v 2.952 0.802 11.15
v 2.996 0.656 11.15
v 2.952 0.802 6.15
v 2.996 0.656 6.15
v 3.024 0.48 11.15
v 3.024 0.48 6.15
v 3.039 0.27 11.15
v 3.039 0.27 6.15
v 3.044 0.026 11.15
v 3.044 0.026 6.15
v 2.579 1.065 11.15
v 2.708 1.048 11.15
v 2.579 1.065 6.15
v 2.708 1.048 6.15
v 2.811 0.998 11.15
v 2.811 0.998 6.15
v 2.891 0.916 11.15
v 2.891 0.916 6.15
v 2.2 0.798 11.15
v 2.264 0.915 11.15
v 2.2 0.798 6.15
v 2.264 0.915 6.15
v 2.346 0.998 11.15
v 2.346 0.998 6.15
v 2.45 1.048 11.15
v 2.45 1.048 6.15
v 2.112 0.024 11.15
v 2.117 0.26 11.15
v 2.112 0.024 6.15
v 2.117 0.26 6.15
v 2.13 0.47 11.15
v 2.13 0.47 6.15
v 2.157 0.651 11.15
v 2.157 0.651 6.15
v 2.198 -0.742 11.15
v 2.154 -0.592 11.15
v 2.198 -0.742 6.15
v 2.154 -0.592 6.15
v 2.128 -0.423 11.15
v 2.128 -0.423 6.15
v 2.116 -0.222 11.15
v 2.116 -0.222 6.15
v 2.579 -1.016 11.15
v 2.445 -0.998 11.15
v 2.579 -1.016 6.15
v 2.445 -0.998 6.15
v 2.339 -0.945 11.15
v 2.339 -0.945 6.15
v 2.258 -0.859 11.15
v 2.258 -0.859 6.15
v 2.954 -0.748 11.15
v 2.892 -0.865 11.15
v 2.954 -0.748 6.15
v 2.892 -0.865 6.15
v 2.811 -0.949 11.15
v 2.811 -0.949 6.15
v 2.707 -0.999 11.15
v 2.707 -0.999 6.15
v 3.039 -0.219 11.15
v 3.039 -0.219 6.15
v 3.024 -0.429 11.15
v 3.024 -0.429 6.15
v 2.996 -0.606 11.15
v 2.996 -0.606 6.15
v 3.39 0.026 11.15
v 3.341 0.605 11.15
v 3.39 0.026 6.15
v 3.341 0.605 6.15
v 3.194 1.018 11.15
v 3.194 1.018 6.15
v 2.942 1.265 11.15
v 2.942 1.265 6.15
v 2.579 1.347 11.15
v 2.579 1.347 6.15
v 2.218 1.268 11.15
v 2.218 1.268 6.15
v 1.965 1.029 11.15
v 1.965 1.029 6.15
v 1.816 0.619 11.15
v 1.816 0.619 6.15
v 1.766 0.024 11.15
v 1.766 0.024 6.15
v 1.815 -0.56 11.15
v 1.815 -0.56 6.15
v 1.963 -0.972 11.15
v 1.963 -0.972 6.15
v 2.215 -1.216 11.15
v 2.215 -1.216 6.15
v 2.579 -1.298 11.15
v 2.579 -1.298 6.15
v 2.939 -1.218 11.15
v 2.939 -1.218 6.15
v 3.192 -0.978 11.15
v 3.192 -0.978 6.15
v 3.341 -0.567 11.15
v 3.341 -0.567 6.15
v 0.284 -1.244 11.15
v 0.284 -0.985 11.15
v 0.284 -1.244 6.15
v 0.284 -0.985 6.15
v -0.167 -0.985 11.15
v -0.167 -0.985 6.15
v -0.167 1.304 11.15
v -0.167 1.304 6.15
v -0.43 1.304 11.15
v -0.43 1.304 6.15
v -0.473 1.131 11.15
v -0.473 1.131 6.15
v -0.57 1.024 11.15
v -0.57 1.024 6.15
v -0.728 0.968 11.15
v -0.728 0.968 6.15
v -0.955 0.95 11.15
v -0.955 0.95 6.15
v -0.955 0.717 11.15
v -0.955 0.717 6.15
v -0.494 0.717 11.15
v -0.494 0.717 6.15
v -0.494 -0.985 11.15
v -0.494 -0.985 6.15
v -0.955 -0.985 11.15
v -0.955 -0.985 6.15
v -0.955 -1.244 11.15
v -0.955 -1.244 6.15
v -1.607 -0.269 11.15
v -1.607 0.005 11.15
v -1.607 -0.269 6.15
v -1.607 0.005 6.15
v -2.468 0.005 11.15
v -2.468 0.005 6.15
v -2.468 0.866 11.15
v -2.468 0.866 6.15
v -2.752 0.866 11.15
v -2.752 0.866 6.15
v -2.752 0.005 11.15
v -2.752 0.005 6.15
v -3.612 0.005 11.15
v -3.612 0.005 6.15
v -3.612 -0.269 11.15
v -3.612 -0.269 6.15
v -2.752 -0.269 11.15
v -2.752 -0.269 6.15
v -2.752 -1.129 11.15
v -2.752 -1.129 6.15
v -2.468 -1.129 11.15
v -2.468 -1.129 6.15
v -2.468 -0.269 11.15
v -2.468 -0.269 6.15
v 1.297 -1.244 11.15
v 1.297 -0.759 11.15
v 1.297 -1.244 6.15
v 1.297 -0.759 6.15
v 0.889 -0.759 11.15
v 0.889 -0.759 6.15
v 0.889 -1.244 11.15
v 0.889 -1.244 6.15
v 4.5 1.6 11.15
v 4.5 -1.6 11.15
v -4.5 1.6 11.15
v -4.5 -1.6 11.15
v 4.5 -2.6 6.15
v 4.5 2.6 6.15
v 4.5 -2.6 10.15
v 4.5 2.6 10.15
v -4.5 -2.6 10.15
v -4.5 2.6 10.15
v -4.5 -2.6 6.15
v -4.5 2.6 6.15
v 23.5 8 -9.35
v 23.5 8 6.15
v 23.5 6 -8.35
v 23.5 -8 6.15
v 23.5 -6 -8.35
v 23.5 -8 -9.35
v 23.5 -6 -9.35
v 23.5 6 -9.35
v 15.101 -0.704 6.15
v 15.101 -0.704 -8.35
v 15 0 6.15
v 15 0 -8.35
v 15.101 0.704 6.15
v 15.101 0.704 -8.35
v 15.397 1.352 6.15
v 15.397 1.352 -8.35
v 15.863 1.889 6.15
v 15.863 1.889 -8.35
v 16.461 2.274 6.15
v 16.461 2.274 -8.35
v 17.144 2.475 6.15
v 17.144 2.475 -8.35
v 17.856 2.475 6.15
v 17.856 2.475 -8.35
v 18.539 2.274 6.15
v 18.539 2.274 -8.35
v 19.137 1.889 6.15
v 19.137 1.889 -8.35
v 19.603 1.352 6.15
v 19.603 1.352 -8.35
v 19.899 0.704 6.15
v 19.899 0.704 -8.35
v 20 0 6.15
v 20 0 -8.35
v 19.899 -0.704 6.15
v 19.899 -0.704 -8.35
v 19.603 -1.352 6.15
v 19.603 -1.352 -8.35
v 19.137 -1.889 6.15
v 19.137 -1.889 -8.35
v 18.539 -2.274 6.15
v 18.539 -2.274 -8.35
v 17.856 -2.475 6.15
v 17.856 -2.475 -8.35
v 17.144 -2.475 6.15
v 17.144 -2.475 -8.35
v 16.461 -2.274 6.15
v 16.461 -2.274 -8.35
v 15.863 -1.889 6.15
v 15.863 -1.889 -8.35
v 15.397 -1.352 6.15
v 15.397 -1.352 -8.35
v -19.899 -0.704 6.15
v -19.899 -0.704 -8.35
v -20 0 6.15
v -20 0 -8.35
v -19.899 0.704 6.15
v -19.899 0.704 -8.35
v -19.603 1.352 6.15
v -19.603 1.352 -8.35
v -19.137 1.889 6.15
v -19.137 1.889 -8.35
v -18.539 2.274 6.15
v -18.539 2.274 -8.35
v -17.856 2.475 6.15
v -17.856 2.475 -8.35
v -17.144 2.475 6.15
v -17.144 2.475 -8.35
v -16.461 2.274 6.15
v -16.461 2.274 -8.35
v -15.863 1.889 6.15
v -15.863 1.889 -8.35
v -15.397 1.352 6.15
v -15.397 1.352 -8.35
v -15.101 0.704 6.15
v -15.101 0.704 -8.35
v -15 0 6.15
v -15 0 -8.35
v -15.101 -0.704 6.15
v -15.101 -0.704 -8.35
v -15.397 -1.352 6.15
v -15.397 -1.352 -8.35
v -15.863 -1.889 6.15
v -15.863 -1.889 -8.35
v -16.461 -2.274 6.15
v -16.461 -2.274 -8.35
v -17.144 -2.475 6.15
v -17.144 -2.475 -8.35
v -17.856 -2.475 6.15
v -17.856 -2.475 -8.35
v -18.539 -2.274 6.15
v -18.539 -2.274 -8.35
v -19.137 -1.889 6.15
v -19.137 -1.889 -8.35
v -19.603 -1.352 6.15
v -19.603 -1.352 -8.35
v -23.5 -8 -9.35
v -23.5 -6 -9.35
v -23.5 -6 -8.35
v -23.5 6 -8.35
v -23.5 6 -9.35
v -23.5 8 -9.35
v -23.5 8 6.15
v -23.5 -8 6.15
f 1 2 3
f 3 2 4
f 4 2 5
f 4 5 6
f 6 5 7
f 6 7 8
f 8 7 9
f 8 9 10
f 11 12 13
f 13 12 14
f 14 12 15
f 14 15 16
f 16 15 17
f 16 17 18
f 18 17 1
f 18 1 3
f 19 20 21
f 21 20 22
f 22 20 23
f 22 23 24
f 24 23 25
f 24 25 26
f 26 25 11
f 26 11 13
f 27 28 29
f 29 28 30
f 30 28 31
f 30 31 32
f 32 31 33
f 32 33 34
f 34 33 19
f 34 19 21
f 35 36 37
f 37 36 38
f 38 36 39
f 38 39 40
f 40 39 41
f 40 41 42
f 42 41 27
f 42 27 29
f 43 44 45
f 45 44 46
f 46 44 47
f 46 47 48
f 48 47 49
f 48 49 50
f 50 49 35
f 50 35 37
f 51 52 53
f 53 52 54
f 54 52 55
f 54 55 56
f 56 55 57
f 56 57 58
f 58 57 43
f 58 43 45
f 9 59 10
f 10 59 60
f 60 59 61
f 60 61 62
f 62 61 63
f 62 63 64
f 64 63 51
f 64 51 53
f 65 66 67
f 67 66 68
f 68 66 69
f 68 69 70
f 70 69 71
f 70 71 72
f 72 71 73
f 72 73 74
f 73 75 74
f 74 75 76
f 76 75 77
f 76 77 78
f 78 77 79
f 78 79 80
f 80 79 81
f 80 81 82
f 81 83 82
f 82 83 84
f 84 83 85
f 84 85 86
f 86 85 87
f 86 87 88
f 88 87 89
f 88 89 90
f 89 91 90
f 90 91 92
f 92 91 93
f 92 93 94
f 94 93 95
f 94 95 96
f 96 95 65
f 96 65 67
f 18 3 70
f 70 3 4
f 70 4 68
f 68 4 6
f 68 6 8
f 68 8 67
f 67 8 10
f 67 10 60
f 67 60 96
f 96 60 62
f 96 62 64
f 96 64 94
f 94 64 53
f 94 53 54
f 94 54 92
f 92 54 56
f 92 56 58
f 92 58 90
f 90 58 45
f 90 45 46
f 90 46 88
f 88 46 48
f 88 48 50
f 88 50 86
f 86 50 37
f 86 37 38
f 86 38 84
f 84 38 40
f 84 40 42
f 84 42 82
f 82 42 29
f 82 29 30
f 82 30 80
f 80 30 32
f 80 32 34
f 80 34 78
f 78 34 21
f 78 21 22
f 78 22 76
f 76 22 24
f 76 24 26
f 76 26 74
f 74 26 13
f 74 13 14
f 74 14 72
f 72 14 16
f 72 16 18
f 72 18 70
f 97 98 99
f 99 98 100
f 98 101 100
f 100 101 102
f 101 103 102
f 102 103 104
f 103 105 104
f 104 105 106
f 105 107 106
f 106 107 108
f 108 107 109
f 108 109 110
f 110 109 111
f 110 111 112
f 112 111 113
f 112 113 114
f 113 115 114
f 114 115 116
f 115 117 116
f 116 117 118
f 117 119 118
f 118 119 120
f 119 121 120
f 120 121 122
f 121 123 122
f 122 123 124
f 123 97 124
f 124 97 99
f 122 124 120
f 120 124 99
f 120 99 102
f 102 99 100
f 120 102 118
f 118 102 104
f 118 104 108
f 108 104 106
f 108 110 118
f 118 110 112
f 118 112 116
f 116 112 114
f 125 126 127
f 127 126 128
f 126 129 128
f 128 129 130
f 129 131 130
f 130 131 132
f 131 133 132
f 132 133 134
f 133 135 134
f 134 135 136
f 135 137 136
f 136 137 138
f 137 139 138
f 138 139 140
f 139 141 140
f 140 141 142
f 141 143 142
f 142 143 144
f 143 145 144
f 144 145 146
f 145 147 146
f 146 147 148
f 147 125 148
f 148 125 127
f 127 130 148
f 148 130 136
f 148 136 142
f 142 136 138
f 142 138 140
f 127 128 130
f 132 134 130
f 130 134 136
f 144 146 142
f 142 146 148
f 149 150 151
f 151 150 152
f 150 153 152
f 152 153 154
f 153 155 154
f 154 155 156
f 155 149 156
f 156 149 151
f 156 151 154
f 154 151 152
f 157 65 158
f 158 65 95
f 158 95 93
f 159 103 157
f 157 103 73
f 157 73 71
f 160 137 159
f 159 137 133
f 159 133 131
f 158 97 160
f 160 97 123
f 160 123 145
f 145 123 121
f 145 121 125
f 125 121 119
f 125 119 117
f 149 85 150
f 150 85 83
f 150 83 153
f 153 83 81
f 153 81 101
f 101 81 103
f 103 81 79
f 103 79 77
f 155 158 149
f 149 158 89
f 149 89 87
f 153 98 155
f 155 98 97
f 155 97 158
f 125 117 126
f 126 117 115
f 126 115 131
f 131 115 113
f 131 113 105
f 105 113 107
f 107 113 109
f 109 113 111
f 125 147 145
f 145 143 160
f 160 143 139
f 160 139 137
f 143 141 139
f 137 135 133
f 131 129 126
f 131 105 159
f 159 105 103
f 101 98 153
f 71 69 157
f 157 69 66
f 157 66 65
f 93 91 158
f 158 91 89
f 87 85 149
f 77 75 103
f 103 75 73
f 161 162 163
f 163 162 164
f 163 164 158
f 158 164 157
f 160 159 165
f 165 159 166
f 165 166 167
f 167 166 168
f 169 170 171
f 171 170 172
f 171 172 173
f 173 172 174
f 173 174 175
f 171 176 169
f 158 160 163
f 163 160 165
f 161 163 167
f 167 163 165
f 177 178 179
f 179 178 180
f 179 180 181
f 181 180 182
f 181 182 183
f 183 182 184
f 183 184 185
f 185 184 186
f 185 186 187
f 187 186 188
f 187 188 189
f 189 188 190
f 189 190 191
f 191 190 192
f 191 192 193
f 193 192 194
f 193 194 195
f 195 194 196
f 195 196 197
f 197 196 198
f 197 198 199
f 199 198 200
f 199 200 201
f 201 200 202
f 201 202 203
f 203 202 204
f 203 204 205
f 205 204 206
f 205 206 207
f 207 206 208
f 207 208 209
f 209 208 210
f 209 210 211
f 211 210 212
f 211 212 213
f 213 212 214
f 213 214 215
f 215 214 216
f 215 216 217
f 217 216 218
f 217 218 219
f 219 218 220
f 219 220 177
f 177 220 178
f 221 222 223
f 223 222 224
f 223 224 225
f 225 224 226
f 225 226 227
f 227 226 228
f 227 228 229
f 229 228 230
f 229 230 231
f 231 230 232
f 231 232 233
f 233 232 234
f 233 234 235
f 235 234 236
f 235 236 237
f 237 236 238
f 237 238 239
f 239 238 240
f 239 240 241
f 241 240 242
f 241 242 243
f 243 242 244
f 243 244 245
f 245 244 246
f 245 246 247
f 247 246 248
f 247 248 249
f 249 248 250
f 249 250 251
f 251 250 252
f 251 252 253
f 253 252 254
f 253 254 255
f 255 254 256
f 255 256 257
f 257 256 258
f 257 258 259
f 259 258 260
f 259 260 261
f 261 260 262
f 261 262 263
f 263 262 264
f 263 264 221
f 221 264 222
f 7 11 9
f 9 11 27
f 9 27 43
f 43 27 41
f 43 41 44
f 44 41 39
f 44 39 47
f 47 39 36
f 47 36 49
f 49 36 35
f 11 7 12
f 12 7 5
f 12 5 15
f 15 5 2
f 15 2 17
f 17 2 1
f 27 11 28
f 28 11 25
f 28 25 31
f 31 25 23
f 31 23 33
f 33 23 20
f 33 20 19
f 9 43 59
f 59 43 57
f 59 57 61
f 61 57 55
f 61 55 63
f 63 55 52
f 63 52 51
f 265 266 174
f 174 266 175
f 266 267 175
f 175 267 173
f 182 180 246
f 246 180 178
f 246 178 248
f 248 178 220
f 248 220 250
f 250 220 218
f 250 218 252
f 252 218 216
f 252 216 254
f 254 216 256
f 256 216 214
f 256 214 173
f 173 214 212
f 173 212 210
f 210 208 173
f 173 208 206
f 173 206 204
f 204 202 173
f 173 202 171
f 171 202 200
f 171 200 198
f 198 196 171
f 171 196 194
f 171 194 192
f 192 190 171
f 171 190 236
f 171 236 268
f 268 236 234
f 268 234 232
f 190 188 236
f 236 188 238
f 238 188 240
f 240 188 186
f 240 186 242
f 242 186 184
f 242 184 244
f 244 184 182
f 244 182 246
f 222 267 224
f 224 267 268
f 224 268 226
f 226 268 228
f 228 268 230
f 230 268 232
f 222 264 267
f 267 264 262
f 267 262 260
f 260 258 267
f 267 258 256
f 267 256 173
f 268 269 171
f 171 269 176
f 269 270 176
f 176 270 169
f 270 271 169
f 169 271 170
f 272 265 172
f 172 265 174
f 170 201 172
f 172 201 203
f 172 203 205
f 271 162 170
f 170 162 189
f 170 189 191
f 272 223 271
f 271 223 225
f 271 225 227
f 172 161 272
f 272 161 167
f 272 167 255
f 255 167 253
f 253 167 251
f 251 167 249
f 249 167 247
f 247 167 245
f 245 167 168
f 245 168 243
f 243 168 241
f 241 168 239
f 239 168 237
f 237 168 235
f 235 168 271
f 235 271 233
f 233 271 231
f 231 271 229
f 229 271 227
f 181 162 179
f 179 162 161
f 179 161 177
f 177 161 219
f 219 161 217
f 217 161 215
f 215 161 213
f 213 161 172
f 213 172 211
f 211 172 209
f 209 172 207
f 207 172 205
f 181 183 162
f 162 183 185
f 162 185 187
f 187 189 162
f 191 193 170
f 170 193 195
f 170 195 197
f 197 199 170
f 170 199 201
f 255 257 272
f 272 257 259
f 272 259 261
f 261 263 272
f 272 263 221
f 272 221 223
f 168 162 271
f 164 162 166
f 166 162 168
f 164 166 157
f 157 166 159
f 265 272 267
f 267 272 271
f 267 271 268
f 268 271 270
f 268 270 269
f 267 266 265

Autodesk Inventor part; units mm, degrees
ref_plane "YZ Plane" through (0, 0, 0) normal (1, 0, 0) x (0, 1, 0)
ref_plane "XZ Plane" through (0, 0, 0) normal (0, 1, 0) x (-1, 0, 0)
ref_plane "XY Plane" through (0, 0, 0) normal (0, 0, 1) x (1, 0, 0)
ref_plane "작업 평면1" through (23.5, -8, -2) normal (1, 0, 0) x (0, 0, -1)
sketch "스케치1" plane through (23.5, -8, -2) normal (1, 0, 0) x (0, 0, -1)
  line L0 (0, 16) -> (-8.15, 16) projected
  line L1 (-8.15, 16) -> (-8.15, 10.6) projected
  line L2 (-8.15, 10.6) -> (-12.15, 10.6) projected
  line L3 (-13.15, 9.6) -> (-12.15, 10.6) projected
  line L4 (-13.15, 9.6) -> (-13.15, 6.4) projected
  line L5 (-12.15, 5.4) -> (-13.15, 6.4) projected
  line L6 (-12.15, 5.4) -> (-8.15, 5.4) projected
  line L7 (-8.15, 5.4) -> (-8.15, 0) projected
  line L8 (-8.15, 0) -> (0, 0) projected
  line L9 (0, 16) -> (7.35, 16)
  line L10 (7.35, 16) -> (7.35, 15)
  line L11 (0, 0) -> (7.35, 0)
  line L12 (7.35, 0) -> (7.35, 1)
  line L13 (0, 16) -> (-8.15, 16)
  line L14 (-8.15, 10.6) -> (-12.15, 10.6) projected
  line L15 (-8.15, 10.6) -> (-12.15, 10.6)
  line L16 (-12.15, 10.6) -> (-13.15, 9.6)
  line L17 (-13.15, 6.4) -> (-12.15, 5.4)
  line L18 (6.35, 14) -> (7.35, 14)
  line L19 (7.35, 14) -> (7.35, 15)
  line L20 (6.35, 2) -> (7.35, 2)
  line L21 (7.35, 2) -> (7.35, 1)
  line L22 (6.35, 14) -> (6.35, 2)
  point P0 (-2, 8)
  point P1 (4.35, 10.6)
  point P2 (4.35, 5.4)
  dimension "d1" = 7.35
  dimension "d13" = 7.35
sketch "스케치2" plane through (-23.5, 8, 6.15) normal (0, 0, 1) x (1, 0, 0)
  arc A0 (7.9209, -9.6) -> (7.9209, -6.4) centre (6, -8) ccw projected
  line L0 (39.0791, -9.6) -> (7.9209, -9.6) projected
  circle A1 centre (6, -8) radius 2.5
  circle A2 centre (41, -8) radius 2.5 projected
  circle A3 centre (41, -8) radius 2.5
  point P0 (23.5, -8)
  point P1 (7.9209, -6.4)
extrude "돌출1" add sketch "스케치1" against normal up to surface (47 mm away)
extrude "돌출2" cut sketch "스케치2" along normal mid plane 50
sketch "스케치3" plane through (-15.5791, 1.6, 11.15) normal (0, 0, 1) x (1, 0, 0)
  line L0 (15.5791, -14.4593) -> (15.5791, 15.5737)
  line L1 (-7.9209, 4.4) -> (-7.9209, -7.6) projected
  line L2 (-7.9209, 4.4) -> (11.0791, 4.4)
  line L3 (11.0791, 4.4) -> (11.0791, -7.6)
  line L4 (11.0791, -7.6) -> (-7.9209, -7.6)
  line L5 (-7.9209, -7.6) -> (-7.9209, 4.4)
  line L6 (39.0791, 4.4) -> (39.0791, -7.6)
  line L7 (39.0791, 4.4) -> (20.0791, 4.4)
  line L8 (20.0791, 4.4) -> (20.0791, -7.6)
  line L9 (20.0791, -7.6) -> (39.0791, -7.6)
  line L10 (39.0791, -7.6) -> (39.0791, 4.4)
  point P0 (15.5791, -1.6)
  dimension "d9" = 19
extrude "돌출3" cut sketch "스케치3" against normal up to surface (5 mm away)
sketch "스케치4" plane through (-4.5, 1.6, 11.15) normal (0, 0, 1) x (1, 0, 0)
  line L0 (0.6181, -0.2528) -> (7.2489, -0.2528) construction
  line L1 (7.2489, -0.2528) -> (7.2489, -2.6222) construction
  line L2 (7.2489, -2.6222) -> (0.6181, -2.6222) construction
  line L3 (0.6181, -2.6222) -> (0.6181, -0.2528) construction
  line L4 (2.8925, -1.8686) -> (2.0321, -1.8686)
  line L5 (2.0321, -1.8686) -> (2.0321, -2.729)
  line L6 (2.0321, -2.729) -> (1.7481, -2.729)
  line L7 (1.7481, -2.729) -> (1.7481, -1.8686)
  line L8 (1.7481, -1.8686) -> (0.8877, -1.8686)
  line L9 (0.8877, -1.8686) -> (0.8877, -1.5949)
  line L10 (0.8877, -1.5949) -> (1.7481, -1.5949)
  line L11 (1.7481, -1.5949) -> (1.7481, -0.7345)
  line L12 (1.7481, -0.7345) -> (2.0321, -0.7345)
  line L13 (2.0321, -0.7345) -> (2.0321, -1.5949)
  line L14 (2.0321, -1.5949) -> (2.8925, -1.5949)
  line L15 (2.8925, -1.5949) -> (2.8925, -1.8686)
  line L16 (4.7842, -2.8443) -> (3.545, -2.8443)
  line L17 (3.545, -2.8443) -> (3.545, -2.5849)
  line L18 (3.545, -2.5849) -> (4.0061, -2.5849)
  line L19 (4.0061, -2.5849) -> (4.0061, -0.8827)
  line L20 (4.0061, -0.8827) -> (3.545, -0.8827)
  line L21 (3.545, -0.8827) -> (3.545, -0.6501)
  spline S0 degree 2 poles (3.545, -0.6501) (3.8064, -0.6501) (4.0534, -0.5019) (4.0699, -0.2961) knots 0 0 0 1 2 2 2
  line L22 (4.0699, -0.2961) -> (4.3334, -0.2961)
  line L23 (4.3334, -0.2961) -> (4.3334, -2.5849)
  line L24 (4.3334, -2.5849) -> (4.7842, -2.5849)
  line L25 (4.7842, -2.5849) -> (4.7842, -2.8443)
  line L26 (5.7969, -2.8443) -> (5.3893, -2.8443)
  line L27 (5.3893, -2.8443) -> (5.3893, -2.3585)
  line L28 (5.3893, -2.3585) -> (5.7969, -2.3585)
  line L29 (5.7969, -2.3585) -> (5.7969, -2.8443)
  spline S1 degree 2 poles (7.8902, -1.5743) (7.8902, -2.2577) (7.4929, -2.8978) (7.0792, -2.8978) knots 0 0 0 1 2 2 2
  spline S2 degree 2 poles (7.0792, -2.8978) (6.6593, -2.8978) (6.2662, -2.2453) (6.2662, -1.5763) knots 0 0 0 1 2 2 2
  spline S3 degree 2 poles (6.2662, -1.5763) (6.2662, -0.8889) (6.6634, -0.2528) (7.0792, -0.2528) knots 0 0 0 1 2 2 2
  spline S4 degree 2 poles (7.0792, -0.2528) (7.4971, -0.2528) (7.8902, -0.9115) (7.8902, -1.5743) knots 0 0 0 1 2 2 2
  spline S5 degree 2 poles (7.4538, -2.3482) (7.5032, -2.2227) (7.5444, -1.8357) (7.5444, -1.5743) knots 0 0 0 1 2 2 2
  spline S6 degree 2 poles (7.5444, -1.5743) (7.5444, -1.3129) (7.5032, -0.928) (7.4518, -0.7983) knots 0 0 0 1 2 2 2
  spline S7 degree 2 poles (7.4518, -0.7983) (7.4003, -0.6686) (7.2212, -0.5348) (7.0792, -0.5348) knots 0 0 0 1 2 2 2
  spline S8 degree 2 poles (7.0792, -0.5348) (6.9372, -0.5348) (6.754, -0.6686) (6.7005, -0.8024) knots 0 0 0 1 2 2 2
  spline S9 degree 2 poles (6.7005, -0.8024) (6.649, -0.9321) (6.612, -1.3273) (6.612, -1.5763) knots 0 0 0 1 2 2 2
  spline S10 degree 2 poles (6.612, -1.5763) (6.612, -1.8439) (6.6449, -2.2021) (6.6984, -2.342) knots 0 0 0 1 2 2 2
  spline S11 degree 2 poles (6.6984, -2.342) (6.7478, -2.4738) (6.931, -2.6158) (7.0792, -2.6158) knots 0 0 0 1 2 2 2
  spline S12 degree 2 poles (7.0792, -2.6158) (7.2192, -2.6158) (7.4024, -2.482) (7.4538, -2.3482) knots 0 0 0 1 2 2 2
  point P0 (4.5, -1.6)
extrude "돌출4" cut sketch "스케치4" against normal blind 5
properties part number "Bearing Spacer_V2_1mm"
